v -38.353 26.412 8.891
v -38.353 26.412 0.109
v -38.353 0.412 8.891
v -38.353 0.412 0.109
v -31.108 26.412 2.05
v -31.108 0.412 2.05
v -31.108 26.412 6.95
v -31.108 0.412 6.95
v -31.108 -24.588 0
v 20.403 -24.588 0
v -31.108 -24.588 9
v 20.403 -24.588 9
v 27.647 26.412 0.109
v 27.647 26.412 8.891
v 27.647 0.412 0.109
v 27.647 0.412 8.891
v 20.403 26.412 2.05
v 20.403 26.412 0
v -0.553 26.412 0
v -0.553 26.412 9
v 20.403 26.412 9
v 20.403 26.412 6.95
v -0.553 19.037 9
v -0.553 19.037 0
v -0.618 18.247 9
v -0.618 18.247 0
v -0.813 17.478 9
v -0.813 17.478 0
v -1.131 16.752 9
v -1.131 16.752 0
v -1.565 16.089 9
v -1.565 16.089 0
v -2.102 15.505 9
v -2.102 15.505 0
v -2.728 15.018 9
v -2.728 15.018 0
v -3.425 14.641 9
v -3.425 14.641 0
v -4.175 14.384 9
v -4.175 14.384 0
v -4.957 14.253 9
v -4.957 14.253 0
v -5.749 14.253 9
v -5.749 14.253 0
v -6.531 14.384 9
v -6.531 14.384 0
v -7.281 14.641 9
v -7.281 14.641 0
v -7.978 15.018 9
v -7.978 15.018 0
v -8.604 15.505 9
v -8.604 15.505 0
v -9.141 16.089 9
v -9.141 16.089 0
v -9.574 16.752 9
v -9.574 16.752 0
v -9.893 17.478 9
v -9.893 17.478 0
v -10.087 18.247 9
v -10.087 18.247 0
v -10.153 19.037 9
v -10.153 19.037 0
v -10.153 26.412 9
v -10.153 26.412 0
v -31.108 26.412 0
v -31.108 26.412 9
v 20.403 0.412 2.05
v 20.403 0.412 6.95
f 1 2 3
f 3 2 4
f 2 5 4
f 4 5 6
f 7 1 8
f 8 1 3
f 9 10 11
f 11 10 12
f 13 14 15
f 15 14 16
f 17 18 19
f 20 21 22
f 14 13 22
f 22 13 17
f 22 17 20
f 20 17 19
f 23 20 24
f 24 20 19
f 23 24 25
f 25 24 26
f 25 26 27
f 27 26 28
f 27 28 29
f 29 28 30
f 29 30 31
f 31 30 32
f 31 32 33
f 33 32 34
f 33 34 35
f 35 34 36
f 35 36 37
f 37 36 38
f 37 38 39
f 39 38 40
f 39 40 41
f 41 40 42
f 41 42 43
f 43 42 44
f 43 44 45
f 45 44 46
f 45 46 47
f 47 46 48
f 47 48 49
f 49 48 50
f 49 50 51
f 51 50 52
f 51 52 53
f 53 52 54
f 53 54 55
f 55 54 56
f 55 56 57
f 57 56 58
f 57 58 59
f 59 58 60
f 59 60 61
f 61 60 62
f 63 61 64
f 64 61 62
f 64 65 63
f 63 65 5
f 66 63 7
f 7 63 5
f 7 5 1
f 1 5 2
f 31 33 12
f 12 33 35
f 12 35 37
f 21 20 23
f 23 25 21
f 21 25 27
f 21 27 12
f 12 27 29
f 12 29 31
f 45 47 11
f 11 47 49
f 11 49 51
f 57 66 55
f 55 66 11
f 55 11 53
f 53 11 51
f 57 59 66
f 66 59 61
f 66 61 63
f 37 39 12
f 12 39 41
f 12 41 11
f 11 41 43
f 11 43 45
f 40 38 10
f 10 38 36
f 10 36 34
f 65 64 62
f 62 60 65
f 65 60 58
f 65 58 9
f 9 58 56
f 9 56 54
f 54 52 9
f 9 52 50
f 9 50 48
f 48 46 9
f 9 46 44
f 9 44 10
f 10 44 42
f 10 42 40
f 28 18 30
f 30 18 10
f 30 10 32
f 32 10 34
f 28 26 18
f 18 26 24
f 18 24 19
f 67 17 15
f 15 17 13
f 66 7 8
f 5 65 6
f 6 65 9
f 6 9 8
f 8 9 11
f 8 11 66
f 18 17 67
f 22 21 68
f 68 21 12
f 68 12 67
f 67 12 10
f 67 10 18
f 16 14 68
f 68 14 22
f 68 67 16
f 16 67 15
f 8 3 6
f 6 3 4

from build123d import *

# Parameters (mm, degrees)
BOSS_EXTRUDE1_DEPTH = 9
CUT_EXTRUDE1_DEPTH  = 52
SKETCH4_W           = 7.545775994
SKETCH4_H           = 9.202794467
SKETCH4_W_2         = 8.134906164
CUT_EXTRUDE2_DEPTH  = 25


with BuildPart() as part:
    # Sketch2 → Boss-Extrude1 (new body)
    with BuildSketch(Plane.XY):
        with BuildLine():
            Line((-10.152941176, 19.036764706), (-10.152941176, 26.411764706))
            Line((-10.152941176, 26.411764706), (-38.352941176, 26.411764706))
            Line((-38.352941176, 26.411764706), (-38.352941176, -24.588235294))
            Line((-38.352941176, -24.588235294), (27.647058824, -24.588235294))
            Line((27.647058824, -24.588235294), (27.647058824, 26.411764706))
            Line((27.647058824, 26.411764706), (-0.552941176, 26.411764706))
            Line((-0.552941176, 26.411764706), (-0.552941176, 19.036764706))
            ThreePointArc((-0.552941176, 19.036764706), (-5.352941176, 14.236764706), (-10.152941176, 19.036764706))
        make_face()
    extrude(amount=BOSS_EXTRUDE1_DEPTH)

    # Sketch3 → Cut-Extrude1 (cut, through all)
    with BuildSketch(Plane(origin=(0, 26.411764706, 0), x_dir=(1, 0, 0), z_dir=(0, 1, 0))):
        Polygon((28.053319282, 0), (20.402615126, -2.05), (20.402615126, 0), align=None)
        Polygon((28.053319282, -9), (20.402615126, -6.95), (20.402615126, -9), align=None)
        Polygon((-38.759201635, 0), (-31.108497479, -2.05), (-31.108497479, 0), align=None)
        Polygon((-38.759201635, -9), (-31.108497479, -6.95), (-31.108497479, -9), align=None)
    extrude(amount=-CUT_EXTRUDE1_DEPTH, mode=Mode.SUBTRACT)

    # Sketch4 → Cut-Extrude2 (cut)
    with BuildSketch(Plane.XZ.offset(24.588235294)):
        with Locations((-34.881385476, 4.601397234)):
            Rectangle(SKETCH4_W, SKETCH4_H)
        with Locations((24.470068208, 4.601397234)):
            Rectangle(SKETCH4_W_2, SKETCH4_H)
    extrude(amount=-CUT_EXTRUDE2_DEPTH, mode=Mode.SUBTRACT)


solid = part.part
